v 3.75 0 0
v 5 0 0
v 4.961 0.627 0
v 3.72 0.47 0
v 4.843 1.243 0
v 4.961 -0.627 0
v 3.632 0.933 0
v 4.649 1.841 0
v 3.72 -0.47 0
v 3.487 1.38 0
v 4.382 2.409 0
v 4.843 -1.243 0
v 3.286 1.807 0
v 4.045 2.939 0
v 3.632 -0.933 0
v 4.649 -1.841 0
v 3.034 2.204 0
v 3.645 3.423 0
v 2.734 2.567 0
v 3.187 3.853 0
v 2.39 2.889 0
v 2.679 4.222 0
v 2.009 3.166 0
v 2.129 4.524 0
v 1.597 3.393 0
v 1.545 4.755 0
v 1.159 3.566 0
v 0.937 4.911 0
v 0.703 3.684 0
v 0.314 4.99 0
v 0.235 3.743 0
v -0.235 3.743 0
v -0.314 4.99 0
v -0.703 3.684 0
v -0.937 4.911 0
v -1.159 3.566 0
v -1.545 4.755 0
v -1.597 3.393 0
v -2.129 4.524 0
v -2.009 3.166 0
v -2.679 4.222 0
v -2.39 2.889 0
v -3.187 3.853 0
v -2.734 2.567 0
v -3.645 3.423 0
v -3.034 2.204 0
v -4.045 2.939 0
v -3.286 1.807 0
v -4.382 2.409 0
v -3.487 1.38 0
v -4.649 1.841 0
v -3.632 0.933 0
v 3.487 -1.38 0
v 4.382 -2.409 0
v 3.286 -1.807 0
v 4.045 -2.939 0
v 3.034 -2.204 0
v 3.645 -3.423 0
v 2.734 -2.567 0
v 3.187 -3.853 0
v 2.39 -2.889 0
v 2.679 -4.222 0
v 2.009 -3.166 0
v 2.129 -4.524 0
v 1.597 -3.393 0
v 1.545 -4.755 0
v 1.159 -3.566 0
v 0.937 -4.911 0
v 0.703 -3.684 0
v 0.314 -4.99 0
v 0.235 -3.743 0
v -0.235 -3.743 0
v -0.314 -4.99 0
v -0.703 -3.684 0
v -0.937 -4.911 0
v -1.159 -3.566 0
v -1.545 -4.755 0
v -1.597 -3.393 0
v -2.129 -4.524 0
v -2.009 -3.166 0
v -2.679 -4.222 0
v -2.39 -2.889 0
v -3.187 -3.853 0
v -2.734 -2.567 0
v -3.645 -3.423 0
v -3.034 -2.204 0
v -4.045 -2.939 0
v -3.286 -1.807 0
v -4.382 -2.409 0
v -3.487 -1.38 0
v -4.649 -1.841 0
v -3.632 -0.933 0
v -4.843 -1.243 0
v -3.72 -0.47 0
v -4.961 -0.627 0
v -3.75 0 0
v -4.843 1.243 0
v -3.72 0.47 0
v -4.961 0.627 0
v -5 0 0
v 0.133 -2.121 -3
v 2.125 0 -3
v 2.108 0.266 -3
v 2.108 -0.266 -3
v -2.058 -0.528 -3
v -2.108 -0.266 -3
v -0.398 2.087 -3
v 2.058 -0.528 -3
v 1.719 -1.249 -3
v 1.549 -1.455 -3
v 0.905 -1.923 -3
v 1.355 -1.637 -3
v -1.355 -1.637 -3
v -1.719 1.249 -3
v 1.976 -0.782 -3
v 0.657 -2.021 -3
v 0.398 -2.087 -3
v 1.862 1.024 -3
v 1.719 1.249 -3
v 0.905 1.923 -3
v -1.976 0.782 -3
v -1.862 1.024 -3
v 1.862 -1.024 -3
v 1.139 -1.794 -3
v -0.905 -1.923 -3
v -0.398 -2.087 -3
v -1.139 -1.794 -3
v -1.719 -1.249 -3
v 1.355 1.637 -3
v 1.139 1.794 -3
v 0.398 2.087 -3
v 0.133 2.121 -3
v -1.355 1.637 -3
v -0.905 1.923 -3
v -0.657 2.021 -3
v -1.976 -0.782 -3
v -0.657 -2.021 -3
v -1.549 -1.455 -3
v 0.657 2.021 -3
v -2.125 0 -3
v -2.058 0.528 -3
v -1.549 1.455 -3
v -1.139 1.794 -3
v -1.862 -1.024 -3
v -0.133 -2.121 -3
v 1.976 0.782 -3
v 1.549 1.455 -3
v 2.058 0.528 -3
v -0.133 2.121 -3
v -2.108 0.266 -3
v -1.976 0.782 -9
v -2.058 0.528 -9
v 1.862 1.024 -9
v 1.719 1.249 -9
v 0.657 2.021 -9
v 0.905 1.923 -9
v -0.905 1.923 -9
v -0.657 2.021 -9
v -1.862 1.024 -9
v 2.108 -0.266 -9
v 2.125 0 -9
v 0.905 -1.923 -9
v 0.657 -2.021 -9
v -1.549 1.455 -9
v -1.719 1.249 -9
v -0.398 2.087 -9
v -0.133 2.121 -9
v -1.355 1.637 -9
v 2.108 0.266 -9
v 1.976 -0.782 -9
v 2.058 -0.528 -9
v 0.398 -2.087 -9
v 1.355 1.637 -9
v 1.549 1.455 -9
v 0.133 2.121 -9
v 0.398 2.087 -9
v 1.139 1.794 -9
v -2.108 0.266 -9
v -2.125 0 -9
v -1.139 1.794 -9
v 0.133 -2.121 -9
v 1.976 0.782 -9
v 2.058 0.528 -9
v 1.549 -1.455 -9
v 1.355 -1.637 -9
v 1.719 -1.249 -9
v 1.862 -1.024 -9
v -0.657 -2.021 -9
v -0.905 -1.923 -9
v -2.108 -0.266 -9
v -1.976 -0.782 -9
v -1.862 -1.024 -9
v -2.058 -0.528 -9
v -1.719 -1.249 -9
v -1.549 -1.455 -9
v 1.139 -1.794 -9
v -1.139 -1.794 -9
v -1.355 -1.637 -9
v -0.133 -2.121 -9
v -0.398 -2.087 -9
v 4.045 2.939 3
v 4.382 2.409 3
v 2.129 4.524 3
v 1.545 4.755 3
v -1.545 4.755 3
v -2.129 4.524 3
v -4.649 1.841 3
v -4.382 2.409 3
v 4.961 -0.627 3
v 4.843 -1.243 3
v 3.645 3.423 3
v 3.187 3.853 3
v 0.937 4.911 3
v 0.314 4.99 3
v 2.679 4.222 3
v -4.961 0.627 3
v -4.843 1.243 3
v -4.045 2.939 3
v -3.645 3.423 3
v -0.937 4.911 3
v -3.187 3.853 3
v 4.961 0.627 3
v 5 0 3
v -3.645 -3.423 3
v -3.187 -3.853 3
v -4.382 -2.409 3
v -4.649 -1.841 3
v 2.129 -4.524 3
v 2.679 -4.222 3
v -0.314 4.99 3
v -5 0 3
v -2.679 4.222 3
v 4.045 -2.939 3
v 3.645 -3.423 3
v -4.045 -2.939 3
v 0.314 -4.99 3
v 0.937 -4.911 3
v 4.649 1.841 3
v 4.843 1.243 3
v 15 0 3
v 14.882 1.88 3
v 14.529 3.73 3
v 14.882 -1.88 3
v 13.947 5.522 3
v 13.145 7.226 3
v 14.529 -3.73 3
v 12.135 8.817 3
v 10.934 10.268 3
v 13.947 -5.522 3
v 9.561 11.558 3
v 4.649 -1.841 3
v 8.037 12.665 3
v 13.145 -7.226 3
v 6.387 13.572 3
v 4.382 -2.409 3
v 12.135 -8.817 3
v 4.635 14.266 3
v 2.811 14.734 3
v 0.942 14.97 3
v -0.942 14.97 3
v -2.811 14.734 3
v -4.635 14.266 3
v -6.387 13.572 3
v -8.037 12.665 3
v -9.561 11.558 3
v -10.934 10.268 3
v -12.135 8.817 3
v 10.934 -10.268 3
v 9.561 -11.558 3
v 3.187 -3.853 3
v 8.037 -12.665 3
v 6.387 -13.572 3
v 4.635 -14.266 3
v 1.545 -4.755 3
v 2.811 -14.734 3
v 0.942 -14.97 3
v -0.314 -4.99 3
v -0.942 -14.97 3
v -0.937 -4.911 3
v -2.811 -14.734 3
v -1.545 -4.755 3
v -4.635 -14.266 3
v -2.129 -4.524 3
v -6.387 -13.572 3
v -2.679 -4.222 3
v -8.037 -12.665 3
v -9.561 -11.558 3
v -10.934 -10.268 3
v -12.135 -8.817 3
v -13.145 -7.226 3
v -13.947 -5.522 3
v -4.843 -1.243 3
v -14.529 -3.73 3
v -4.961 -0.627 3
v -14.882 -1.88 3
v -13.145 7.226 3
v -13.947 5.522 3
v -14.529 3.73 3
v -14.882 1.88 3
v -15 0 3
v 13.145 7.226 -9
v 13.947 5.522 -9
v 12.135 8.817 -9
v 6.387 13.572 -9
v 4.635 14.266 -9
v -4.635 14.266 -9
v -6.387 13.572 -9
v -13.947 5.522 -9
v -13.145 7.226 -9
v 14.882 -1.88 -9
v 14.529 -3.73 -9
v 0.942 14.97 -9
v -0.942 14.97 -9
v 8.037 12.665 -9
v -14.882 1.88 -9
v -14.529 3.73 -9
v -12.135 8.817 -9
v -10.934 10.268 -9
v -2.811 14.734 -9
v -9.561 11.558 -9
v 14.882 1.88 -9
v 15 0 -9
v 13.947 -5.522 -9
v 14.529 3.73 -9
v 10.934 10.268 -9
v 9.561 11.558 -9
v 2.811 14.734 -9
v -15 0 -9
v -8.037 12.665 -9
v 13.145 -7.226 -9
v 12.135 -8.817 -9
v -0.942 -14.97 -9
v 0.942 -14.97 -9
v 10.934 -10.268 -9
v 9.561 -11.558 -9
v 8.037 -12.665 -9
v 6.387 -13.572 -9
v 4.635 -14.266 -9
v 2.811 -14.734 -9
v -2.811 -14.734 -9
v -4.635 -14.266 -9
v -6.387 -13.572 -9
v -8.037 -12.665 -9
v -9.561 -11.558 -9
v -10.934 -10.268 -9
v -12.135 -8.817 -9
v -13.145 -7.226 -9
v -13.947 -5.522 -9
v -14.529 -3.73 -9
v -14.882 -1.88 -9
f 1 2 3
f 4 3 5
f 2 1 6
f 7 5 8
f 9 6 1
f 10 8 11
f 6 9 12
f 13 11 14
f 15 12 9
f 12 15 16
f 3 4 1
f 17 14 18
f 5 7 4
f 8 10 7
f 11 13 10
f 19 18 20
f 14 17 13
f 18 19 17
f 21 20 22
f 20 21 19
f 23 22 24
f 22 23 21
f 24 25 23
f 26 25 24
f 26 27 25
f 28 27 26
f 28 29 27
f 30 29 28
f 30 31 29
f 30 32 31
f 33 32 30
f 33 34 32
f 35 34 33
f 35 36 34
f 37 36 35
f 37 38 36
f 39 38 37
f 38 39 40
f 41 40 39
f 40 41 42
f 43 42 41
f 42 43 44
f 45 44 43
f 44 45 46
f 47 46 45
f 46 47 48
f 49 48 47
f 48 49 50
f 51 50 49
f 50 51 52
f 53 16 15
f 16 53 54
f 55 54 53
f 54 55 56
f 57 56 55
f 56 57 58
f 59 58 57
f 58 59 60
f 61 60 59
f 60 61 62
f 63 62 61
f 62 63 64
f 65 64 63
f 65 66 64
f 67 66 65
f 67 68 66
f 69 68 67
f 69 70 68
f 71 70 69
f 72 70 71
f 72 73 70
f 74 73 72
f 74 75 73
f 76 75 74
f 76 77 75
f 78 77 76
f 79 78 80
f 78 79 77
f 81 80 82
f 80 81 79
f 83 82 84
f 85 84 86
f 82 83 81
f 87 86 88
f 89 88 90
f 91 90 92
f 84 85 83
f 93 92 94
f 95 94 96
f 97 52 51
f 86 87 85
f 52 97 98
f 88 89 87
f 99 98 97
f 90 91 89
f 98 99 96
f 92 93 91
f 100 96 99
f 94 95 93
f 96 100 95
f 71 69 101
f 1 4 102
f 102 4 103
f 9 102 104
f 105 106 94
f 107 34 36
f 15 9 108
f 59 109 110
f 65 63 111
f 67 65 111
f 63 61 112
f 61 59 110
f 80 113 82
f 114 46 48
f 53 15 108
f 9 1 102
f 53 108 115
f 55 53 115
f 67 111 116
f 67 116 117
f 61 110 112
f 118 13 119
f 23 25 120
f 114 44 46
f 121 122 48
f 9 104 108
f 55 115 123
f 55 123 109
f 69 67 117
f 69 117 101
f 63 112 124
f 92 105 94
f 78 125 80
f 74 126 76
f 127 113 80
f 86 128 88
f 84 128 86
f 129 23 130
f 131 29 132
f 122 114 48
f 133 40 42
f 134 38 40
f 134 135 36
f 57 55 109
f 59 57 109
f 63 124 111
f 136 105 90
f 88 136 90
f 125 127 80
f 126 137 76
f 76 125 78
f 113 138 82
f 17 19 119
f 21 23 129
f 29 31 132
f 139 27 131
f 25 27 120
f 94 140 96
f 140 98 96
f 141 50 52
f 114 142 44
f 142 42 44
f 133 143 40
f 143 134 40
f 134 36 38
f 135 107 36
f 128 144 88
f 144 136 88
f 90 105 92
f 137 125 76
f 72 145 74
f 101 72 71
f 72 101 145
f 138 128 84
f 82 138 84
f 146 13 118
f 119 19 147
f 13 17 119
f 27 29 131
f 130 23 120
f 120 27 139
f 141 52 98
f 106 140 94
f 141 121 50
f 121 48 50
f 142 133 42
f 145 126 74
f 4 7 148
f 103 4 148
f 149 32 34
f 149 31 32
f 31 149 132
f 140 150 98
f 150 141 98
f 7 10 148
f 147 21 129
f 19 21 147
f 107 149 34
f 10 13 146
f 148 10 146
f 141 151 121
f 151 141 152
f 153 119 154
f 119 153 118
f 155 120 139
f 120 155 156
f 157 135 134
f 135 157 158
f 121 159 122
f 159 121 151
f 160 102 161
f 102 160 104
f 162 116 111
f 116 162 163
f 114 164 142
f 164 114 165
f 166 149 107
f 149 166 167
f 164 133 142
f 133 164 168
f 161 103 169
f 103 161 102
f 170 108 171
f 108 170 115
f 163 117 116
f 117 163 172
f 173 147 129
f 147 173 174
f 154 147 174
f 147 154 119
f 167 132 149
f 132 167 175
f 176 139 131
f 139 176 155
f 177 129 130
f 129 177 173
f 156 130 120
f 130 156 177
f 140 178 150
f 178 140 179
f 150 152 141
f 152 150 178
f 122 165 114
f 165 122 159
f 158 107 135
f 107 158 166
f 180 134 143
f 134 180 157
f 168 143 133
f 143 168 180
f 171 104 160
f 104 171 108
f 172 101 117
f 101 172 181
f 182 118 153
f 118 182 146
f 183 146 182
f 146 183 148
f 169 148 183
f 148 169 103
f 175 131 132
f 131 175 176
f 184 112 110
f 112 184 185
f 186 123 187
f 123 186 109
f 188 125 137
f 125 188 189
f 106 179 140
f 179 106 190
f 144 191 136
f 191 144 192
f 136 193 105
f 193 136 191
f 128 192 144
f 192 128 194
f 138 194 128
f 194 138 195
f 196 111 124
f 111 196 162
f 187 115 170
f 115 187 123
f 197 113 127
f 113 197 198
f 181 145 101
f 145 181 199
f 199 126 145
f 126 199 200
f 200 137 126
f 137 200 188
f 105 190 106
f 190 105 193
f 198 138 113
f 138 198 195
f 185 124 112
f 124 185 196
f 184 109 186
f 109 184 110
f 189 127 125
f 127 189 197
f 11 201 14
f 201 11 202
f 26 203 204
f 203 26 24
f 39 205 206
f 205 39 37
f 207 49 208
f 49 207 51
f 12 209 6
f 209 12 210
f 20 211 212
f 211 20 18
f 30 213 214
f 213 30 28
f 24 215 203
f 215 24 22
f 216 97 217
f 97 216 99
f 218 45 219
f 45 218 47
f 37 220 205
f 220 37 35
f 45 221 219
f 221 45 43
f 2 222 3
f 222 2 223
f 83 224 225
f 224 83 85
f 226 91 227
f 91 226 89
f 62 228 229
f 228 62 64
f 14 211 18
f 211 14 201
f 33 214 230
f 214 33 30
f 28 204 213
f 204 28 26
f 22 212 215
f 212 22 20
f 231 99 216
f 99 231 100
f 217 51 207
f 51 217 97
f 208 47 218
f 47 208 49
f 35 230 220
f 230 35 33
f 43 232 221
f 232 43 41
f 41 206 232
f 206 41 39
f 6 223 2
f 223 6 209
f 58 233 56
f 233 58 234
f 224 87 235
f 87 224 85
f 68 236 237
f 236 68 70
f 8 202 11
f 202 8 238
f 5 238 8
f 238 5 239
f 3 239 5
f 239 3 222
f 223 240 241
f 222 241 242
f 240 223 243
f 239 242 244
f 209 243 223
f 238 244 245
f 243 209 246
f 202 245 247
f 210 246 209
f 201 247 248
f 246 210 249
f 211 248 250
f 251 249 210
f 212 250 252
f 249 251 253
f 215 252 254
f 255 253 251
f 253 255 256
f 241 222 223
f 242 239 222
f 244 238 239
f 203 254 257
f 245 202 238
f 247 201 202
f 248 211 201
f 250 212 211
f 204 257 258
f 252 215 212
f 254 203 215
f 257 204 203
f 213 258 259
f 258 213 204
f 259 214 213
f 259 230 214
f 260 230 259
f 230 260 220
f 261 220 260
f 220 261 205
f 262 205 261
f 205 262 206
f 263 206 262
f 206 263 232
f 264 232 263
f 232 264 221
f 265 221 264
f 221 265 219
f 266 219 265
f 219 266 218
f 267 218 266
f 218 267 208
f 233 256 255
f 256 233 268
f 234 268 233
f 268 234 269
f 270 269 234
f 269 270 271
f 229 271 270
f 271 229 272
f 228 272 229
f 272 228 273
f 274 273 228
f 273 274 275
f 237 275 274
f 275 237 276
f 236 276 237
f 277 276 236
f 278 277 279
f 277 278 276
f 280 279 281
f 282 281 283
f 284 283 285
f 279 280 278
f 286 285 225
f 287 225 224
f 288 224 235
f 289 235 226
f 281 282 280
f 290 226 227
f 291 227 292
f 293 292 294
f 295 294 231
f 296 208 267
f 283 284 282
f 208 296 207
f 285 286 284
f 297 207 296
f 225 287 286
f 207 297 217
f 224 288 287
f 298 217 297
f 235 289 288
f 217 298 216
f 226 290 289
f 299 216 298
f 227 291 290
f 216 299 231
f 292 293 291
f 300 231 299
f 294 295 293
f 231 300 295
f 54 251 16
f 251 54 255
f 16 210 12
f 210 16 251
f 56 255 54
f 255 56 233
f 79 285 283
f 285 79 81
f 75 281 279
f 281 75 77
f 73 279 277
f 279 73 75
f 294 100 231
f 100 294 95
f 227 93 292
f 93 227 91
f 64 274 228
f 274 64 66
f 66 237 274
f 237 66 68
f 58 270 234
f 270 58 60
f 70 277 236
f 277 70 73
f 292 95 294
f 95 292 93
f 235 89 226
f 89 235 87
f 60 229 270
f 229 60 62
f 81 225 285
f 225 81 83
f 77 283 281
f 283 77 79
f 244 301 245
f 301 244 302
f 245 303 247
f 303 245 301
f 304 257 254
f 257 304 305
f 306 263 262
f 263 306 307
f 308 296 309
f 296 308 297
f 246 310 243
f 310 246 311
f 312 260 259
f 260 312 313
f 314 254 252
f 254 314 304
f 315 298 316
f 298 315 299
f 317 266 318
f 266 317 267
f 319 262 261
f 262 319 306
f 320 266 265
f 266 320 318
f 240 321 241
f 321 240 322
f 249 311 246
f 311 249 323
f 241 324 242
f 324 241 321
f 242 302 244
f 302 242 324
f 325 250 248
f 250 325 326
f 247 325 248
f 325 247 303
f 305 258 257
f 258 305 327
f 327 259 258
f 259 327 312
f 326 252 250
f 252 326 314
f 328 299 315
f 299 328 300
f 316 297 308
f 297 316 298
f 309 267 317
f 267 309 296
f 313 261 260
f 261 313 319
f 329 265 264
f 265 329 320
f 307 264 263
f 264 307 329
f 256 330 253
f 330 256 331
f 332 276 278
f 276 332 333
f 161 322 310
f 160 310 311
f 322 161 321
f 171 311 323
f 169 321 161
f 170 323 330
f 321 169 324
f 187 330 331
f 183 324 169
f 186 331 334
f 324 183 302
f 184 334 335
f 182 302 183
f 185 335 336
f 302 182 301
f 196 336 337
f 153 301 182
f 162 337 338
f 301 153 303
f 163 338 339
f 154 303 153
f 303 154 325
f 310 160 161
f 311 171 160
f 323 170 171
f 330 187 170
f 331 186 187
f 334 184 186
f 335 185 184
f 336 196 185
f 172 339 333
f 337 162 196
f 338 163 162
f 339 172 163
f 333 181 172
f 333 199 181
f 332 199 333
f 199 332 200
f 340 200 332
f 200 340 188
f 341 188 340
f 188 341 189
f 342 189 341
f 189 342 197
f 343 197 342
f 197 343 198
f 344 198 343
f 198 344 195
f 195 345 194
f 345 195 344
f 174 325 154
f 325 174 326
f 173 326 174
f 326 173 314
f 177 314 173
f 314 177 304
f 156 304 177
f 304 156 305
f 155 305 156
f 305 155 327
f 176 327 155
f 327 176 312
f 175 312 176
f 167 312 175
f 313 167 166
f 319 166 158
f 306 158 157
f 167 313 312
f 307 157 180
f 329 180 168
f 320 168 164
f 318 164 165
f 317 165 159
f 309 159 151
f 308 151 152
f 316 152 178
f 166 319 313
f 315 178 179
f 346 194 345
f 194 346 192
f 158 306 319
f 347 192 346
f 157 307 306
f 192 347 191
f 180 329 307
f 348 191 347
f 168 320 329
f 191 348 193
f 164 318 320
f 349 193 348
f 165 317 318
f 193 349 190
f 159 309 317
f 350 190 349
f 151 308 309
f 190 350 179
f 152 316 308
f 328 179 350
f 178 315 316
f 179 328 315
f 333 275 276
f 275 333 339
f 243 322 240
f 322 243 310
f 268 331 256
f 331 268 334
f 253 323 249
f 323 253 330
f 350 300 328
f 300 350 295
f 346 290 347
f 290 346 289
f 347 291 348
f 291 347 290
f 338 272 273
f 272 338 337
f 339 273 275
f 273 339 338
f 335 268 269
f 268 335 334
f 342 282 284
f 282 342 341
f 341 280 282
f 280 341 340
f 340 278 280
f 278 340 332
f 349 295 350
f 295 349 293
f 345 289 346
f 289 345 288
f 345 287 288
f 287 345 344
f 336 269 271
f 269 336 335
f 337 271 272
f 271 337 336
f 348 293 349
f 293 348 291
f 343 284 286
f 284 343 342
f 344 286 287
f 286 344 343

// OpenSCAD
$fn = 50;


difference() {
	union() {
		translate(v = [0, 0, -9.0000000000]) {
			cylinder(h = 12, r = 15.0000000000);
		}
	}
	union() {
		translate(v = [0, 0, 0]) {
			rotate(a = [0, 0, 0]) {
				difference() {
					union() {
						translate(v = [0, 0, -12.0000000000]) {
							cylinder(h = 12, r = 2.0000000000);
						}
						translate(v = [0, 0, -3]) {
							cylinder(h = 3, r1 = 2.1250000000, r2 = 3.7500000000);
						}
						translate(v = [0, 0, -12.0000000000]) {
							cylinder(h = 12, r = 2.1250000000);
						}
						translate(v = [0, 0, -12.0000000000]) {
							cylinder(h = 12, r = 2.0000000000);
						}
					}
					union();
				}
			}
		}
		#cylinder(h = 3, r = 5.0000000000);
	}
}
